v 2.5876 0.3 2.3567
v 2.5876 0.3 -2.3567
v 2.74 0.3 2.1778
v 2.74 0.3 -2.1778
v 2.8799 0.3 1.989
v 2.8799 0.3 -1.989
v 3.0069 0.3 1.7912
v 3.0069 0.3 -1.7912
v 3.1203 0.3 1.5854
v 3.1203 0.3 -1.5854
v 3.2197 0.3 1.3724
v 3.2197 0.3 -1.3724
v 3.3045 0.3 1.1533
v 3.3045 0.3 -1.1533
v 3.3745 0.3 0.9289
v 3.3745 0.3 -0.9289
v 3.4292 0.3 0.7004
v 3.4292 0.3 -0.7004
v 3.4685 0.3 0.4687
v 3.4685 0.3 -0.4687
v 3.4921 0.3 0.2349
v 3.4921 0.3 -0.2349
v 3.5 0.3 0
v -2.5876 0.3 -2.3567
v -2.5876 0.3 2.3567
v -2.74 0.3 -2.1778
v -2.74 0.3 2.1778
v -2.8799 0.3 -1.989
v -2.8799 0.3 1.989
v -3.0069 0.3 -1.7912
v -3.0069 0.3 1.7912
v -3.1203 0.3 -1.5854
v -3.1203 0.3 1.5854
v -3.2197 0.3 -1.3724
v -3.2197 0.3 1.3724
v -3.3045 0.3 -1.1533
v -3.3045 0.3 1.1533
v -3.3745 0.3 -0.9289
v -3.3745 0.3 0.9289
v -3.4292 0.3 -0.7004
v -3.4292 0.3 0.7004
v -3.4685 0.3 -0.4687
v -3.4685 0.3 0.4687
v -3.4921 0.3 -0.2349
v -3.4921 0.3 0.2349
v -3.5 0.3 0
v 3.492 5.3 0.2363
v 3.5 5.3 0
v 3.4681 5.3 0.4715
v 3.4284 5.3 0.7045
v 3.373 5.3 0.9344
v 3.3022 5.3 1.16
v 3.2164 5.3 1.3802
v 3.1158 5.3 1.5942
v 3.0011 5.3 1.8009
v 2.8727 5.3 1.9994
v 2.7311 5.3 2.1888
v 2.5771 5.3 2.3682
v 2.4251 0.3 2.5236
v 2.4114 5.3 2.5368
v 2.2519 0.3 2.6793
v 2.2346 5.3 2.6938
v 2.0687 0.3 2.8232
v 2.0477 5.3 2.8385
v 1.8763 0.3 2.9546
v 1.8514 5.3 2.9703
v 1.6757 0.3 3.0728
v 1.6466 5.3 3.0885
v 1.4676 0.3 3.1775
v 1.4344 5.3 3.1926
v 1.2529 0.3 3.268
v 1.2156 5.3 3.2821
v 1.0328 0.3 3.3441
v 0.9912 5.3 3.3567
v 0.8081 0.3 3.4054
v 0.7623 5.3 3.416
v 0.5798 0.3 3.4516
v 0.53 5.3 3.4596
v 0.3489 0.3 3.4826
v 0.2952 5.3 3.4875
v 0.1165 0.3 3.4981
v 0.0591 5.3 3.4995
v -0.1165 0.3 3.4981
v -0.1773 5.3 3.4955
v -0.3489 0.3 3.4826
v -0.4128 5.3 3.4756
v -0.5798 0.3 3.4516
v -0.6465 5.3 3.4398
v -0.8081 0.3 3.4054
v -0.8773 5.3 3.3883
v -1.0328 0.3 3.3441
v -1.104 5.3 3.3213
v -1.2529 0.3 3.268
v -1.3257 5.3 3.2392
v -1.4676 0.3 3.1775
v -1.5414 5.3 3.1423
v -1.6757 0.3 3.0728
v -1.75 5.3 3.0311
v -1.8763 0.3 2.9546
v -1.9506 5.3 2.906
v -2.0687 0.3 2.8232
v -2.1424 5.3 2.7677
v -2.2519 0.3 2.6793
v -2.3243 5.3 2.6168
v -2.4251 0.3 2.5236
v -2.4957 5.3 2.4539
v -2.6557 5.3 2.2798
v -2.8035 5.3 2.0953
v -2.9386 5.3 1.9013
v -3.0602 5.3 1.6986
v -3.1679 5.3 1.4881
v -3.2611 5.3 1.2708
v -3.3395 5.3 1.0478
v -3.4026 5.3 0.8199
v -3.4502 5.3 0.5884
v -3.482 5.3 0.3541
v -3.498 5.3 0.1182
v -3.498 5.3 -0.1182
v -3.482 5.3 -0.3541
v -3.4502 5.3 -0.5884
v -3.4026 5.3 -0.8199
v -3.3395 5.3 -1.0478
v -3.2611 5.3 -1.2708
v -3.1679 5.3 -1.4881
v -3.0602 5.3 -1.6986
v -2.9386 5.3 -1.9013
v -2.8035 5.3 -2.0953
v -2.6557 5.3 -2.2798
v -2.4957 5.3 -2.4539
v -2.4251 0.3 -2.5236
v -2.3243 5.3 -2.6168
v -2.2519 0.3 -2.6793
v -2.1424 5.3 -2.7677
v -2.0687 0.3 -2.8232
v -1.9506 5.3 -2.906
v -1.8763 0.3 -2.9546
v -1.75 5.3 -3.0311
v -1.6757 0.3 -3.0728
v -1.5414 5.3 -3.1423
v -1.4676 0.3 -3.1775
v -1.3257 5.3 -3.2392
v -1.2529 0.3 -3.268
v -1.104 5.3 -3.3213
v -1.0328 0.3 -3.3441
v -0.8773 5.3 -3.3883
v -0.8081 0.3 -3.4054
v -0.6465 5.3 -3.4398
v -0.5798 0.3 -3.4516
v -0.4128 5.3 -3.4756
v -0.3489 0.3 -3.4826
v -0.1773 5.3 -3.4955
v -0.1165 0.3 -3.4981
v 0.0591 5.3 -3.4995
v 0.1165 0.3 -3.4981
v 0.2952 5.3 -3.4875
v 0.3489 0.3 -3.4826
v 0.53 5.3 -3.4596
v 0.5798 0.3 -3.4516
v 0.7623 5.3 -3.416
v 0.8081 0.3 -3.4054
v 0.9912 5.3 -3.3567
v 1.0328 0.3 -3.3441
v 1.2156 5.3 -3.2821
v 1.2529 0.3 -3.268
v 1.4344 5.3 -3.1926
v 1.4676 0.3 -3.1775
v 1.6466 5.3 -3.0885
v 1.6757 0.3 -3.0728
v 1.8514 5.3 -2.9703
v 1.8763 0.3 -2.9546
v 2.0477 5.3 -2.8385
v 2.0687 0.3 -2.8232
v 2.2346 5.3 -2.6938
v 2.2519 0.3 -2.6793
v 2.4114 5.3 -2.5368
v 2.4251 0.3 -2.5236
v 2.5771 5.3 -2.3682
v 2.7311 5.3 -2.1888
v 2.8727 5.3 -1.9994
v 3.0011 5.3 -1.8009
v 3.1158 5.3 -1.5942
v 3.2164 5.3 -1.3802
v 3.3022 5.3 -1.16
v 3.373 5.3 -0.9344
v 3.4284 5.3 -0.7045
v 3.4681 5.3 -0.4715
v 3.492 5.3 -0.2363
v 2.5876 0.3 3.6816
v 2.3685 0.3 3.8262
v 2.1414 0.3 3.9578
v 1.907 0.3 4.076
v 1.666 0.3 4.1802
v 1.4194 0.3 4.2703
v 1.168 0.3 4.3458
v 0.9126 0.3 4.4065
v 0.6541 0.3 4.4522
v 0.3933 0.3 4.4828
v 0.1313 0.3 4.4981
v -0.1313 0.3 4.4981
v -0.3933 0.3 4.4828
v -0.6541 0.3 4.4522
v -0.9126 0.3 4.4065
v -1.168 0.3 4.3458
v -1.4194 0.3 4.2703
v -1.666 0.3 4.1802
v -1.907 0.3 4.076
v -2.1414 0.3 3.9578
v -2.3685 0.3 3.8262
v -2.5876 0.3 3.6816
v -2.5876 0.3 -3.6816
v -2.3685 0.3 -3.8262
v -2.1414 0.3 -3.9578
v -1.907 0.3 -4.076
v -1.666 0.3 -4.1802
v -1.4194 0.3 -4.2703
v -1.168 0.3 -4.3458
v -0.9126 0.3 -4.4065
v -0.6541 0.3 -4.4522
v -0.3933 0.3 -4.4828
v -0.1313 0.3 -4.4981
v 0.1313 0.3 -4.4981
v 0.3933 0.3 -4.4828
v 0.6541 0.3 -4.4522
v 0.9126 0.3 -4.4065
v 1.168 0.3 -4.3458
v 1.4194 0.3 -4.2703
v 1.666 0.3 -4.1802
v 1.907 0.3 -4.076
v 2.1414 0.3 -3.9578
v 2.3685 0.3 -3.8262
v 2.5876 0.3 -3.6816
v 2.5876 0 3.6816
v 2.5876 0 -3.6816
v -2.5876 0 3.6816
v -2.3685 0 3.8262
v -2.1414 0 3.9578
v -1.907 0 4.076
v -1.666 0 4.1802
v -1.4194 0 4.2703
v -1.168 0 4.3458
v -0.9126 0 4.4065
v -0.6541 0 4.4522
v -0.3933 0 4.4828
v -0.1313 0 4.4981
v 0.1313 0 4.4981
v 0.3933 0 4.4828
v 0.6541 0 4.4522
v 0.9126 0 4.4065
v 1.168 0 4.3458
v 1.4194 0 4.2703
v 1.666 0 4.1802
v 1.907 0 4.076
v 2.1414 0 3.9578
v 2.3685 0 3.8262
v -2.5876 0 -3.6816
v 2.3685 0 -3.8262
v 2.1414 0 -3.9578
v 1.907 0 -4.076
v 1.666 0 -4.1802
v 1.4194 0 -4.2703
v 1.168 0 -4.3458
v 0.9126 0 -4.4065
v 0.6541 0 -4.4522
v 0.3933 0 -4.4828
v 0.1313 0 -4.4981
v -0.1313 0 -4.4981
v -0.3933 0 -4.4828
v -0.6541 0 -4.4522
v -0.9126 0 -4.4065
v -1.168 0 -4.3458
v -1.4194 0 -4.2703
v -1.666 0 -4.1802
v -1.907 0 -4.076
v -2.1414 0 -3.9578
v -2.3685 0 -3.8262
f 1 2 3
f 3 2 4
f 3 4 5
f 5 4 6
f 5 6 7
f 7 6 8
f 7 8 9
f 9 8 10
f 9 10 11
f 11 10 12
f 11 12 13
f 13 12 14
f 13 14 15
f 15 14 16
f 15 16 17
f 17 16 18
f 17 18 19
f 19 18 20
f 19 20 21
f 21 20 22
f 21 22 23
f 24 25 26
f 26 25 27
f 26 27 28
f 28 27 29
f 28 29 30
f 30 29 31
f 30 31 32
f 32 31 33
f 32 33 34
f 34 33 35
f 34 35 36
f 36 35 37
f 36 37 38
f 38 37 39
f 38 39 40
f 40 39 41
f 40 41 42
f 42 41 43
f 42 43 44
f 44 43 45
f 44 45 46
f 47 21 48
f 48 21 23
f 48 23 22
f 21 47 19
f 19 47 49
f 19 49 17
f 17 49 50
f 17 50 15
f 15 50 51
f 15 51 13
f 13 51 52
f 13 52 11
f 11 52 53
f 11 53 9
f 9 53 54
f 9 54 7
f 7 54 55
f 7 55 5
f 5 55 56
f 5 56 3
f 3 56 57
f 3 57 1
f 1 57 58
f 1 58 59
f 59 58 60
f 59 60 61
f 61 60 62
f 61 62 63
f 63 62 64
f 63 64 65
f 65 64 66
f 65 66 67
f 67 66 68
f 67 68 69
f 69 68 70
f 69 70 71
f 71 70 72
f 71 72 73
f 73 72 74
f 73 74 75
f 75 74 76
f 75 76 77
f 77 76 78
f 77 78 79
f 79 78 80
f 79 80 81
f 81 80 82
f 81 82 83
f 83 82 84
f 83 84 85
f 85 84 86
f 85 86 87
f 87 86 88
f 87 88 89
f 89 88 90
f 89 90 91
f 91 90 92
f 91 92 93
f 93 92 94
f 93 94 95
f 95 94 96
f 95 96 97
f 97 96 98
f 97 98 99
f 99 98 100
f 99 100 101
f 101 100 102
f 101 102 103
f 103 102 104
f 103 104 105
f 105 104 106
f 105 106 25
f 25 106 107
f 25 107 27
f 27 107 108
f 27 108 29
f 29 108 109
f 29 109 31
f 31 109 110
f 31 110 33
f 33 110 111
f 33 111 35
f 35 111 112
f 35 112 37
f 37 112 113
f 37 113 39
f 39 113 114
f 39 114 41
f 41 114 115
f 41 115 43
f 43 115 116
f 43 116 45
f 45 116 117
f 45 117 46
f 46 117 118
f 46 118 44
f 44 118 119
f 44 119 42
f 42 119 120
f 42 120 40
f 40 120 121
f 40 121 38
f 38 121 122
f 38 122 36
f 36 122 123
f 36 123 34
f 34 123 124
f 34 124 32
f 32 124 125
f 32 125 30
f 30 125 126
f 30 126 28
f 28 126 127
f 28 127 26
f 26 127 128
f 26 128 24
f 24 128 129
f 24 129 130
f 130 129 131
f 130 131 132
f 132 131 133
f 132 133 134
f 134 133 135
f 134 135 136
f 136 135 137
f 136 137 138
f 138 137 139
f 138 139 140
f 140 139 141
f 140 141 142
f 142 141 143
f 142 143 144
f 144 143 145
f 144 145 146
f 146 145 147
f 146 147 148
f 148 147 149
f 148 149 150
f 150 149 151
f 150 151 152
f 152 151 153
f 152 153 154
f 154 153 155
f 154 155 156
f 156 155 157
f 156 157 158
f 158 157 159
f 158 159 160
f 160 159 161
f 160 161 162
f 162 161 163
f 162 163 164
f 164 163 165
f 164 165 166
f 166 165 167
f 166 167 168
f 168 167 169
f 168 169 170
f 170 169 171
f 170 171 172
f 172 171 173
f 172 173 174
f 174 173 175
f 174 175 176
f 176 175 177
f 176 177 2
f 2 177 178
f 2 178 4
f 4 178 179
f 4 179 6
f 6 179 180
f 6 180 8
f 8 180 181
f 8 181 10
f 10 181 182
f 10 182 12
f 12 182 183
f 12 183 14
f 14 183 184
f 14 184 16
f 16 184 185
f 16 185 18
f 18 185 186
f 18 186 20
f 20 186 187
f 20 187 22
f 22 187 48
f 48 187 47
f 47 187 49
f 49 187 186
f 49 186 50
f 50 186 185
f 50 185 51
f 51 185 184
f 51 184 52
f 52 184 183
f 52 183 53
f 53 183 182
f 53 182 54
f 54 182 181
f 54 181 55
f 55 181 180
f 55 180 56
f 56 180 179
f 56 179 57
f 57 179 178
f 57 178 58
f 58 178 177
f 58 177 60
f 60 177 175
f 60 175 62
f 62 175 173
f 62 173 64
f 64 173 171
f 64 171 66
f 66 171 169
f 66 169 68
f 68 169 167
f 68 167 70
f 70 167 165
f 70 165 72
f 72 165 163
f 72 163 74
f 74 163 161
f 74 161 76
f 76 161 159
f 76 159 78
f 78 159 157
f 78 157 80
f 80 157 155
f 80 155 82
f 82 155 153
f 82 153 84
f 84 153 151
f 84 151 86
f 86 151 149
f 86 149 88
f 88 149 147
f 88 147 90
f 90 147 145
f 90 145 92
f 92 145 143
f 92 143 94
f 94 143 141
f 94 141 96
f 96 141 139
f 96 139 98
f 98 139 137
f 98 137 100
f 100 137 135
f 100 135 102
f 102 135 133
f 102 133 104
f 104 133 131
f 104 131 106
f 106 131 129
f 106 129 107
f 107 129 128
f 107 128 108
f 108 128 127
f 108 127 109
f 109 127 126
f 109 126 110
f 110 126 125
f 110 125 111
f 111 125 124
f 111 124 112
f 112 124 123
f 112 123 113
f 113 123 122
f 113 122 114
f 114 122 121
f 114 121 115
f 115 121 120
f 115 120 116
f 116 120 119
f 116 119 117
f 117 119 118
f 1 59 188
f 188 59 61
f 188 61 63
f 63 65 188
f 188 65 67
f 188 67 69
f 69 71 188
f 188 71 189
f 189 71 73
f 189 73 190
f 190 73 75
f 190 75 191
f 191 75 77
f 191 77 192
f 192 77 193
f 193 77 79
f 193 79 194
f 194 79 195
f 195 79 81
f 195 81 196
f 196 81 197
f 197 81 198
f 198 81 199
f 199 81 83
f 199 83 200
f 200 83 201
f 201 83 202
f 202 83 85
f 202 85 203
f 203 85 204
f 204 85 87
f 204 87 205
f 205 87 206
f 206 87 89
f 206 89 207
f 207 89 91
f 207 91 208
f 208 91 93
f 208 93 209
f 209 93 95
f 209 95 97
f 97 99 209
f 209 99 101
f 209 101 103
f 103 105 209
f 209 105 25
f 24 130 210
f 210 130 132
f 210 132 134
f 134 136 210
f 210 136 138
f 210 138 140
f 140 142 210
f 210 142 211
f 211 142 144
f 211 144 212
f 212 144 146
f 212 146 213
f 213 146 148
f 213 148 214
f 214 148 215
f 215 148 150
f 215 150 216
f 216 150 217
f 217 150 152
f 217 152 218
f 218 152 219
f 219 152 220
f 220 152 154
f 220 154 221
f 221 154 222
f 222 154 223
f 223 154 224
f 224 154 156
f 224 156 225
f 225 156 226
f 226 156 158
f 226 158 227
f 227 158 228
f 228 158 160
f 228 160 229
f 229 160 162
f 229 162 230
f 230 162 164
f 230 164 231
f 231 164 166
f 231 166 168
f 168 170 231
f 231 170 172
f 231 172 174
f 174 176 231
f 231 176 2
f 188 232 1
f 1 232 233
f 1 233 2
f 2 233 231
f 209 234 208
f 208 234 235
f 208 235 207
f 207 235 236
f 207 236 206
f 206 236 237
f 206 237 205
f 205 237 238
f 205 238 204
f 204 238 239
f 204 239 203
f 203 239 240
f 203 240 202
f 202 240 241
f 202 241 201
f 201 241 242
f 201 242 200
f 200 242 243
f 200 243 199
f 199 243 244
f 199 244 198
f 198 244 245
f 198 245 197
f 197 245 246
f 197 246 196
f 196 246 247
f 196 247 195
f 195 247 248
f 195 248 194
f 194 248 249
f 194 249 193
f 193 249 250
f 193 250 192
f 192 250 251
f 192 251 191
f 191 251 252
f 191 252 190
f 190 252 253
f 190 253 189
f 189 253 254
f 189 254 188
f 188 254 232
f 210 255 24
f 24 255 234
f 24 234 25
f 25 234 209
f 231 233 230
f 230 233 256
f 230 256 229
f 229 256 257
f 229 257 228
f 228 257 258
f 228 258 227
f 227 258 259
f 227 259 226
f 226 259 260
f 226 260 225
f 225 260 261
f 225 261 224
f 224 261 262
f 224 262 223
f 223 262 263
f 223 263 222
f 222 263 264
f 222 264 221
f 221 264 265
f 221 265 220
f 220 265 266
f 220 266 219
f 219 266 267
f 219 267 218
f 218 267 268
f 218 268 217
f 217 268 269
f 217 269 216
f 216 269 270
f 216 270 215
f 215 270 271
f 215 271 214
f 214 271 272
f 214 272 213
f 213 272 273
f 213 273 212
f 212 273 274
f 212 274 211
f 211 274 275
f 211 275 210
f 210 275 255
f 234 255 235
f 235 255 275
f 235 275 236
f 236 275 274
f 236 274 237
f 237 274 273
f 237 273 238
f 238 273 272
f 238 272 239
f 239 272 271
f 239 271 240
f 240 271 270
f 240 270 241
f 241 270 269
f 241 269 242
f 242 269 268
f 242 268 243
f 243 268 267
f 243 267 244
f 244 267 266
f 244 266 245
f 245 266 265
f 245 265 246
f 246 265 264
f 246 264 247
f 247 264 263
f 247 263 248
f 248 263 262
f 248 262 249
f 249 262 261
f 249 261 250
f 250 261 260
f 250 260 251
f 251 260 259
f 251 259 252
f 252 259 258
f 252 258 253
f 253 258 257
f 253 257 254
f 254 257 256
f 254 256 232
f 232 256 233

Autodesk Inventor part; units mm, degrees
ref_plane "YZ Plane" through (0, 0, 0) normal (1, 0, 0) x (0, 1, 0)
ref_plane "XZ Plane" through (0, 0, 0) normal (0, 1, 0) x (-1, 0, 0)
ref_plane "XY Plane" through (0, 0, 0) normal (0, 0, 1) x (1, 0, 0)
sketch "Esboço1" plane through (0, 0, 0) normal (0, 1, 0) x (-1, 0, 0)
  line L0 (2.5876, 3.6816) -> (2.5876, -3.6816)
  line L1 (-2.5876, 3.6816) -> (-2.5876, -3.6816)
  arc A0 (2.5876, 3.6816) -> (-2.5876, 3.6816) centre (0, 0) ccw
  arc A1 (-2.5876, -3.6816) -> (2.5876, -3.6816) centre (0, 0) ccw
extrude "Extrusão1" add sketch "Esboço1" along normal blind 0.3
sketch "Esboço2" plane through (0, 0.3, 0) normal (0, 1, 0) x (1, 0, 0)
  circle A0 centre (0, 0) radius 3.5
  dimension "d3" = 7
extrude "Extrusão2" add sketch "Esboço2" along normal blind 5
properties part number "button"
